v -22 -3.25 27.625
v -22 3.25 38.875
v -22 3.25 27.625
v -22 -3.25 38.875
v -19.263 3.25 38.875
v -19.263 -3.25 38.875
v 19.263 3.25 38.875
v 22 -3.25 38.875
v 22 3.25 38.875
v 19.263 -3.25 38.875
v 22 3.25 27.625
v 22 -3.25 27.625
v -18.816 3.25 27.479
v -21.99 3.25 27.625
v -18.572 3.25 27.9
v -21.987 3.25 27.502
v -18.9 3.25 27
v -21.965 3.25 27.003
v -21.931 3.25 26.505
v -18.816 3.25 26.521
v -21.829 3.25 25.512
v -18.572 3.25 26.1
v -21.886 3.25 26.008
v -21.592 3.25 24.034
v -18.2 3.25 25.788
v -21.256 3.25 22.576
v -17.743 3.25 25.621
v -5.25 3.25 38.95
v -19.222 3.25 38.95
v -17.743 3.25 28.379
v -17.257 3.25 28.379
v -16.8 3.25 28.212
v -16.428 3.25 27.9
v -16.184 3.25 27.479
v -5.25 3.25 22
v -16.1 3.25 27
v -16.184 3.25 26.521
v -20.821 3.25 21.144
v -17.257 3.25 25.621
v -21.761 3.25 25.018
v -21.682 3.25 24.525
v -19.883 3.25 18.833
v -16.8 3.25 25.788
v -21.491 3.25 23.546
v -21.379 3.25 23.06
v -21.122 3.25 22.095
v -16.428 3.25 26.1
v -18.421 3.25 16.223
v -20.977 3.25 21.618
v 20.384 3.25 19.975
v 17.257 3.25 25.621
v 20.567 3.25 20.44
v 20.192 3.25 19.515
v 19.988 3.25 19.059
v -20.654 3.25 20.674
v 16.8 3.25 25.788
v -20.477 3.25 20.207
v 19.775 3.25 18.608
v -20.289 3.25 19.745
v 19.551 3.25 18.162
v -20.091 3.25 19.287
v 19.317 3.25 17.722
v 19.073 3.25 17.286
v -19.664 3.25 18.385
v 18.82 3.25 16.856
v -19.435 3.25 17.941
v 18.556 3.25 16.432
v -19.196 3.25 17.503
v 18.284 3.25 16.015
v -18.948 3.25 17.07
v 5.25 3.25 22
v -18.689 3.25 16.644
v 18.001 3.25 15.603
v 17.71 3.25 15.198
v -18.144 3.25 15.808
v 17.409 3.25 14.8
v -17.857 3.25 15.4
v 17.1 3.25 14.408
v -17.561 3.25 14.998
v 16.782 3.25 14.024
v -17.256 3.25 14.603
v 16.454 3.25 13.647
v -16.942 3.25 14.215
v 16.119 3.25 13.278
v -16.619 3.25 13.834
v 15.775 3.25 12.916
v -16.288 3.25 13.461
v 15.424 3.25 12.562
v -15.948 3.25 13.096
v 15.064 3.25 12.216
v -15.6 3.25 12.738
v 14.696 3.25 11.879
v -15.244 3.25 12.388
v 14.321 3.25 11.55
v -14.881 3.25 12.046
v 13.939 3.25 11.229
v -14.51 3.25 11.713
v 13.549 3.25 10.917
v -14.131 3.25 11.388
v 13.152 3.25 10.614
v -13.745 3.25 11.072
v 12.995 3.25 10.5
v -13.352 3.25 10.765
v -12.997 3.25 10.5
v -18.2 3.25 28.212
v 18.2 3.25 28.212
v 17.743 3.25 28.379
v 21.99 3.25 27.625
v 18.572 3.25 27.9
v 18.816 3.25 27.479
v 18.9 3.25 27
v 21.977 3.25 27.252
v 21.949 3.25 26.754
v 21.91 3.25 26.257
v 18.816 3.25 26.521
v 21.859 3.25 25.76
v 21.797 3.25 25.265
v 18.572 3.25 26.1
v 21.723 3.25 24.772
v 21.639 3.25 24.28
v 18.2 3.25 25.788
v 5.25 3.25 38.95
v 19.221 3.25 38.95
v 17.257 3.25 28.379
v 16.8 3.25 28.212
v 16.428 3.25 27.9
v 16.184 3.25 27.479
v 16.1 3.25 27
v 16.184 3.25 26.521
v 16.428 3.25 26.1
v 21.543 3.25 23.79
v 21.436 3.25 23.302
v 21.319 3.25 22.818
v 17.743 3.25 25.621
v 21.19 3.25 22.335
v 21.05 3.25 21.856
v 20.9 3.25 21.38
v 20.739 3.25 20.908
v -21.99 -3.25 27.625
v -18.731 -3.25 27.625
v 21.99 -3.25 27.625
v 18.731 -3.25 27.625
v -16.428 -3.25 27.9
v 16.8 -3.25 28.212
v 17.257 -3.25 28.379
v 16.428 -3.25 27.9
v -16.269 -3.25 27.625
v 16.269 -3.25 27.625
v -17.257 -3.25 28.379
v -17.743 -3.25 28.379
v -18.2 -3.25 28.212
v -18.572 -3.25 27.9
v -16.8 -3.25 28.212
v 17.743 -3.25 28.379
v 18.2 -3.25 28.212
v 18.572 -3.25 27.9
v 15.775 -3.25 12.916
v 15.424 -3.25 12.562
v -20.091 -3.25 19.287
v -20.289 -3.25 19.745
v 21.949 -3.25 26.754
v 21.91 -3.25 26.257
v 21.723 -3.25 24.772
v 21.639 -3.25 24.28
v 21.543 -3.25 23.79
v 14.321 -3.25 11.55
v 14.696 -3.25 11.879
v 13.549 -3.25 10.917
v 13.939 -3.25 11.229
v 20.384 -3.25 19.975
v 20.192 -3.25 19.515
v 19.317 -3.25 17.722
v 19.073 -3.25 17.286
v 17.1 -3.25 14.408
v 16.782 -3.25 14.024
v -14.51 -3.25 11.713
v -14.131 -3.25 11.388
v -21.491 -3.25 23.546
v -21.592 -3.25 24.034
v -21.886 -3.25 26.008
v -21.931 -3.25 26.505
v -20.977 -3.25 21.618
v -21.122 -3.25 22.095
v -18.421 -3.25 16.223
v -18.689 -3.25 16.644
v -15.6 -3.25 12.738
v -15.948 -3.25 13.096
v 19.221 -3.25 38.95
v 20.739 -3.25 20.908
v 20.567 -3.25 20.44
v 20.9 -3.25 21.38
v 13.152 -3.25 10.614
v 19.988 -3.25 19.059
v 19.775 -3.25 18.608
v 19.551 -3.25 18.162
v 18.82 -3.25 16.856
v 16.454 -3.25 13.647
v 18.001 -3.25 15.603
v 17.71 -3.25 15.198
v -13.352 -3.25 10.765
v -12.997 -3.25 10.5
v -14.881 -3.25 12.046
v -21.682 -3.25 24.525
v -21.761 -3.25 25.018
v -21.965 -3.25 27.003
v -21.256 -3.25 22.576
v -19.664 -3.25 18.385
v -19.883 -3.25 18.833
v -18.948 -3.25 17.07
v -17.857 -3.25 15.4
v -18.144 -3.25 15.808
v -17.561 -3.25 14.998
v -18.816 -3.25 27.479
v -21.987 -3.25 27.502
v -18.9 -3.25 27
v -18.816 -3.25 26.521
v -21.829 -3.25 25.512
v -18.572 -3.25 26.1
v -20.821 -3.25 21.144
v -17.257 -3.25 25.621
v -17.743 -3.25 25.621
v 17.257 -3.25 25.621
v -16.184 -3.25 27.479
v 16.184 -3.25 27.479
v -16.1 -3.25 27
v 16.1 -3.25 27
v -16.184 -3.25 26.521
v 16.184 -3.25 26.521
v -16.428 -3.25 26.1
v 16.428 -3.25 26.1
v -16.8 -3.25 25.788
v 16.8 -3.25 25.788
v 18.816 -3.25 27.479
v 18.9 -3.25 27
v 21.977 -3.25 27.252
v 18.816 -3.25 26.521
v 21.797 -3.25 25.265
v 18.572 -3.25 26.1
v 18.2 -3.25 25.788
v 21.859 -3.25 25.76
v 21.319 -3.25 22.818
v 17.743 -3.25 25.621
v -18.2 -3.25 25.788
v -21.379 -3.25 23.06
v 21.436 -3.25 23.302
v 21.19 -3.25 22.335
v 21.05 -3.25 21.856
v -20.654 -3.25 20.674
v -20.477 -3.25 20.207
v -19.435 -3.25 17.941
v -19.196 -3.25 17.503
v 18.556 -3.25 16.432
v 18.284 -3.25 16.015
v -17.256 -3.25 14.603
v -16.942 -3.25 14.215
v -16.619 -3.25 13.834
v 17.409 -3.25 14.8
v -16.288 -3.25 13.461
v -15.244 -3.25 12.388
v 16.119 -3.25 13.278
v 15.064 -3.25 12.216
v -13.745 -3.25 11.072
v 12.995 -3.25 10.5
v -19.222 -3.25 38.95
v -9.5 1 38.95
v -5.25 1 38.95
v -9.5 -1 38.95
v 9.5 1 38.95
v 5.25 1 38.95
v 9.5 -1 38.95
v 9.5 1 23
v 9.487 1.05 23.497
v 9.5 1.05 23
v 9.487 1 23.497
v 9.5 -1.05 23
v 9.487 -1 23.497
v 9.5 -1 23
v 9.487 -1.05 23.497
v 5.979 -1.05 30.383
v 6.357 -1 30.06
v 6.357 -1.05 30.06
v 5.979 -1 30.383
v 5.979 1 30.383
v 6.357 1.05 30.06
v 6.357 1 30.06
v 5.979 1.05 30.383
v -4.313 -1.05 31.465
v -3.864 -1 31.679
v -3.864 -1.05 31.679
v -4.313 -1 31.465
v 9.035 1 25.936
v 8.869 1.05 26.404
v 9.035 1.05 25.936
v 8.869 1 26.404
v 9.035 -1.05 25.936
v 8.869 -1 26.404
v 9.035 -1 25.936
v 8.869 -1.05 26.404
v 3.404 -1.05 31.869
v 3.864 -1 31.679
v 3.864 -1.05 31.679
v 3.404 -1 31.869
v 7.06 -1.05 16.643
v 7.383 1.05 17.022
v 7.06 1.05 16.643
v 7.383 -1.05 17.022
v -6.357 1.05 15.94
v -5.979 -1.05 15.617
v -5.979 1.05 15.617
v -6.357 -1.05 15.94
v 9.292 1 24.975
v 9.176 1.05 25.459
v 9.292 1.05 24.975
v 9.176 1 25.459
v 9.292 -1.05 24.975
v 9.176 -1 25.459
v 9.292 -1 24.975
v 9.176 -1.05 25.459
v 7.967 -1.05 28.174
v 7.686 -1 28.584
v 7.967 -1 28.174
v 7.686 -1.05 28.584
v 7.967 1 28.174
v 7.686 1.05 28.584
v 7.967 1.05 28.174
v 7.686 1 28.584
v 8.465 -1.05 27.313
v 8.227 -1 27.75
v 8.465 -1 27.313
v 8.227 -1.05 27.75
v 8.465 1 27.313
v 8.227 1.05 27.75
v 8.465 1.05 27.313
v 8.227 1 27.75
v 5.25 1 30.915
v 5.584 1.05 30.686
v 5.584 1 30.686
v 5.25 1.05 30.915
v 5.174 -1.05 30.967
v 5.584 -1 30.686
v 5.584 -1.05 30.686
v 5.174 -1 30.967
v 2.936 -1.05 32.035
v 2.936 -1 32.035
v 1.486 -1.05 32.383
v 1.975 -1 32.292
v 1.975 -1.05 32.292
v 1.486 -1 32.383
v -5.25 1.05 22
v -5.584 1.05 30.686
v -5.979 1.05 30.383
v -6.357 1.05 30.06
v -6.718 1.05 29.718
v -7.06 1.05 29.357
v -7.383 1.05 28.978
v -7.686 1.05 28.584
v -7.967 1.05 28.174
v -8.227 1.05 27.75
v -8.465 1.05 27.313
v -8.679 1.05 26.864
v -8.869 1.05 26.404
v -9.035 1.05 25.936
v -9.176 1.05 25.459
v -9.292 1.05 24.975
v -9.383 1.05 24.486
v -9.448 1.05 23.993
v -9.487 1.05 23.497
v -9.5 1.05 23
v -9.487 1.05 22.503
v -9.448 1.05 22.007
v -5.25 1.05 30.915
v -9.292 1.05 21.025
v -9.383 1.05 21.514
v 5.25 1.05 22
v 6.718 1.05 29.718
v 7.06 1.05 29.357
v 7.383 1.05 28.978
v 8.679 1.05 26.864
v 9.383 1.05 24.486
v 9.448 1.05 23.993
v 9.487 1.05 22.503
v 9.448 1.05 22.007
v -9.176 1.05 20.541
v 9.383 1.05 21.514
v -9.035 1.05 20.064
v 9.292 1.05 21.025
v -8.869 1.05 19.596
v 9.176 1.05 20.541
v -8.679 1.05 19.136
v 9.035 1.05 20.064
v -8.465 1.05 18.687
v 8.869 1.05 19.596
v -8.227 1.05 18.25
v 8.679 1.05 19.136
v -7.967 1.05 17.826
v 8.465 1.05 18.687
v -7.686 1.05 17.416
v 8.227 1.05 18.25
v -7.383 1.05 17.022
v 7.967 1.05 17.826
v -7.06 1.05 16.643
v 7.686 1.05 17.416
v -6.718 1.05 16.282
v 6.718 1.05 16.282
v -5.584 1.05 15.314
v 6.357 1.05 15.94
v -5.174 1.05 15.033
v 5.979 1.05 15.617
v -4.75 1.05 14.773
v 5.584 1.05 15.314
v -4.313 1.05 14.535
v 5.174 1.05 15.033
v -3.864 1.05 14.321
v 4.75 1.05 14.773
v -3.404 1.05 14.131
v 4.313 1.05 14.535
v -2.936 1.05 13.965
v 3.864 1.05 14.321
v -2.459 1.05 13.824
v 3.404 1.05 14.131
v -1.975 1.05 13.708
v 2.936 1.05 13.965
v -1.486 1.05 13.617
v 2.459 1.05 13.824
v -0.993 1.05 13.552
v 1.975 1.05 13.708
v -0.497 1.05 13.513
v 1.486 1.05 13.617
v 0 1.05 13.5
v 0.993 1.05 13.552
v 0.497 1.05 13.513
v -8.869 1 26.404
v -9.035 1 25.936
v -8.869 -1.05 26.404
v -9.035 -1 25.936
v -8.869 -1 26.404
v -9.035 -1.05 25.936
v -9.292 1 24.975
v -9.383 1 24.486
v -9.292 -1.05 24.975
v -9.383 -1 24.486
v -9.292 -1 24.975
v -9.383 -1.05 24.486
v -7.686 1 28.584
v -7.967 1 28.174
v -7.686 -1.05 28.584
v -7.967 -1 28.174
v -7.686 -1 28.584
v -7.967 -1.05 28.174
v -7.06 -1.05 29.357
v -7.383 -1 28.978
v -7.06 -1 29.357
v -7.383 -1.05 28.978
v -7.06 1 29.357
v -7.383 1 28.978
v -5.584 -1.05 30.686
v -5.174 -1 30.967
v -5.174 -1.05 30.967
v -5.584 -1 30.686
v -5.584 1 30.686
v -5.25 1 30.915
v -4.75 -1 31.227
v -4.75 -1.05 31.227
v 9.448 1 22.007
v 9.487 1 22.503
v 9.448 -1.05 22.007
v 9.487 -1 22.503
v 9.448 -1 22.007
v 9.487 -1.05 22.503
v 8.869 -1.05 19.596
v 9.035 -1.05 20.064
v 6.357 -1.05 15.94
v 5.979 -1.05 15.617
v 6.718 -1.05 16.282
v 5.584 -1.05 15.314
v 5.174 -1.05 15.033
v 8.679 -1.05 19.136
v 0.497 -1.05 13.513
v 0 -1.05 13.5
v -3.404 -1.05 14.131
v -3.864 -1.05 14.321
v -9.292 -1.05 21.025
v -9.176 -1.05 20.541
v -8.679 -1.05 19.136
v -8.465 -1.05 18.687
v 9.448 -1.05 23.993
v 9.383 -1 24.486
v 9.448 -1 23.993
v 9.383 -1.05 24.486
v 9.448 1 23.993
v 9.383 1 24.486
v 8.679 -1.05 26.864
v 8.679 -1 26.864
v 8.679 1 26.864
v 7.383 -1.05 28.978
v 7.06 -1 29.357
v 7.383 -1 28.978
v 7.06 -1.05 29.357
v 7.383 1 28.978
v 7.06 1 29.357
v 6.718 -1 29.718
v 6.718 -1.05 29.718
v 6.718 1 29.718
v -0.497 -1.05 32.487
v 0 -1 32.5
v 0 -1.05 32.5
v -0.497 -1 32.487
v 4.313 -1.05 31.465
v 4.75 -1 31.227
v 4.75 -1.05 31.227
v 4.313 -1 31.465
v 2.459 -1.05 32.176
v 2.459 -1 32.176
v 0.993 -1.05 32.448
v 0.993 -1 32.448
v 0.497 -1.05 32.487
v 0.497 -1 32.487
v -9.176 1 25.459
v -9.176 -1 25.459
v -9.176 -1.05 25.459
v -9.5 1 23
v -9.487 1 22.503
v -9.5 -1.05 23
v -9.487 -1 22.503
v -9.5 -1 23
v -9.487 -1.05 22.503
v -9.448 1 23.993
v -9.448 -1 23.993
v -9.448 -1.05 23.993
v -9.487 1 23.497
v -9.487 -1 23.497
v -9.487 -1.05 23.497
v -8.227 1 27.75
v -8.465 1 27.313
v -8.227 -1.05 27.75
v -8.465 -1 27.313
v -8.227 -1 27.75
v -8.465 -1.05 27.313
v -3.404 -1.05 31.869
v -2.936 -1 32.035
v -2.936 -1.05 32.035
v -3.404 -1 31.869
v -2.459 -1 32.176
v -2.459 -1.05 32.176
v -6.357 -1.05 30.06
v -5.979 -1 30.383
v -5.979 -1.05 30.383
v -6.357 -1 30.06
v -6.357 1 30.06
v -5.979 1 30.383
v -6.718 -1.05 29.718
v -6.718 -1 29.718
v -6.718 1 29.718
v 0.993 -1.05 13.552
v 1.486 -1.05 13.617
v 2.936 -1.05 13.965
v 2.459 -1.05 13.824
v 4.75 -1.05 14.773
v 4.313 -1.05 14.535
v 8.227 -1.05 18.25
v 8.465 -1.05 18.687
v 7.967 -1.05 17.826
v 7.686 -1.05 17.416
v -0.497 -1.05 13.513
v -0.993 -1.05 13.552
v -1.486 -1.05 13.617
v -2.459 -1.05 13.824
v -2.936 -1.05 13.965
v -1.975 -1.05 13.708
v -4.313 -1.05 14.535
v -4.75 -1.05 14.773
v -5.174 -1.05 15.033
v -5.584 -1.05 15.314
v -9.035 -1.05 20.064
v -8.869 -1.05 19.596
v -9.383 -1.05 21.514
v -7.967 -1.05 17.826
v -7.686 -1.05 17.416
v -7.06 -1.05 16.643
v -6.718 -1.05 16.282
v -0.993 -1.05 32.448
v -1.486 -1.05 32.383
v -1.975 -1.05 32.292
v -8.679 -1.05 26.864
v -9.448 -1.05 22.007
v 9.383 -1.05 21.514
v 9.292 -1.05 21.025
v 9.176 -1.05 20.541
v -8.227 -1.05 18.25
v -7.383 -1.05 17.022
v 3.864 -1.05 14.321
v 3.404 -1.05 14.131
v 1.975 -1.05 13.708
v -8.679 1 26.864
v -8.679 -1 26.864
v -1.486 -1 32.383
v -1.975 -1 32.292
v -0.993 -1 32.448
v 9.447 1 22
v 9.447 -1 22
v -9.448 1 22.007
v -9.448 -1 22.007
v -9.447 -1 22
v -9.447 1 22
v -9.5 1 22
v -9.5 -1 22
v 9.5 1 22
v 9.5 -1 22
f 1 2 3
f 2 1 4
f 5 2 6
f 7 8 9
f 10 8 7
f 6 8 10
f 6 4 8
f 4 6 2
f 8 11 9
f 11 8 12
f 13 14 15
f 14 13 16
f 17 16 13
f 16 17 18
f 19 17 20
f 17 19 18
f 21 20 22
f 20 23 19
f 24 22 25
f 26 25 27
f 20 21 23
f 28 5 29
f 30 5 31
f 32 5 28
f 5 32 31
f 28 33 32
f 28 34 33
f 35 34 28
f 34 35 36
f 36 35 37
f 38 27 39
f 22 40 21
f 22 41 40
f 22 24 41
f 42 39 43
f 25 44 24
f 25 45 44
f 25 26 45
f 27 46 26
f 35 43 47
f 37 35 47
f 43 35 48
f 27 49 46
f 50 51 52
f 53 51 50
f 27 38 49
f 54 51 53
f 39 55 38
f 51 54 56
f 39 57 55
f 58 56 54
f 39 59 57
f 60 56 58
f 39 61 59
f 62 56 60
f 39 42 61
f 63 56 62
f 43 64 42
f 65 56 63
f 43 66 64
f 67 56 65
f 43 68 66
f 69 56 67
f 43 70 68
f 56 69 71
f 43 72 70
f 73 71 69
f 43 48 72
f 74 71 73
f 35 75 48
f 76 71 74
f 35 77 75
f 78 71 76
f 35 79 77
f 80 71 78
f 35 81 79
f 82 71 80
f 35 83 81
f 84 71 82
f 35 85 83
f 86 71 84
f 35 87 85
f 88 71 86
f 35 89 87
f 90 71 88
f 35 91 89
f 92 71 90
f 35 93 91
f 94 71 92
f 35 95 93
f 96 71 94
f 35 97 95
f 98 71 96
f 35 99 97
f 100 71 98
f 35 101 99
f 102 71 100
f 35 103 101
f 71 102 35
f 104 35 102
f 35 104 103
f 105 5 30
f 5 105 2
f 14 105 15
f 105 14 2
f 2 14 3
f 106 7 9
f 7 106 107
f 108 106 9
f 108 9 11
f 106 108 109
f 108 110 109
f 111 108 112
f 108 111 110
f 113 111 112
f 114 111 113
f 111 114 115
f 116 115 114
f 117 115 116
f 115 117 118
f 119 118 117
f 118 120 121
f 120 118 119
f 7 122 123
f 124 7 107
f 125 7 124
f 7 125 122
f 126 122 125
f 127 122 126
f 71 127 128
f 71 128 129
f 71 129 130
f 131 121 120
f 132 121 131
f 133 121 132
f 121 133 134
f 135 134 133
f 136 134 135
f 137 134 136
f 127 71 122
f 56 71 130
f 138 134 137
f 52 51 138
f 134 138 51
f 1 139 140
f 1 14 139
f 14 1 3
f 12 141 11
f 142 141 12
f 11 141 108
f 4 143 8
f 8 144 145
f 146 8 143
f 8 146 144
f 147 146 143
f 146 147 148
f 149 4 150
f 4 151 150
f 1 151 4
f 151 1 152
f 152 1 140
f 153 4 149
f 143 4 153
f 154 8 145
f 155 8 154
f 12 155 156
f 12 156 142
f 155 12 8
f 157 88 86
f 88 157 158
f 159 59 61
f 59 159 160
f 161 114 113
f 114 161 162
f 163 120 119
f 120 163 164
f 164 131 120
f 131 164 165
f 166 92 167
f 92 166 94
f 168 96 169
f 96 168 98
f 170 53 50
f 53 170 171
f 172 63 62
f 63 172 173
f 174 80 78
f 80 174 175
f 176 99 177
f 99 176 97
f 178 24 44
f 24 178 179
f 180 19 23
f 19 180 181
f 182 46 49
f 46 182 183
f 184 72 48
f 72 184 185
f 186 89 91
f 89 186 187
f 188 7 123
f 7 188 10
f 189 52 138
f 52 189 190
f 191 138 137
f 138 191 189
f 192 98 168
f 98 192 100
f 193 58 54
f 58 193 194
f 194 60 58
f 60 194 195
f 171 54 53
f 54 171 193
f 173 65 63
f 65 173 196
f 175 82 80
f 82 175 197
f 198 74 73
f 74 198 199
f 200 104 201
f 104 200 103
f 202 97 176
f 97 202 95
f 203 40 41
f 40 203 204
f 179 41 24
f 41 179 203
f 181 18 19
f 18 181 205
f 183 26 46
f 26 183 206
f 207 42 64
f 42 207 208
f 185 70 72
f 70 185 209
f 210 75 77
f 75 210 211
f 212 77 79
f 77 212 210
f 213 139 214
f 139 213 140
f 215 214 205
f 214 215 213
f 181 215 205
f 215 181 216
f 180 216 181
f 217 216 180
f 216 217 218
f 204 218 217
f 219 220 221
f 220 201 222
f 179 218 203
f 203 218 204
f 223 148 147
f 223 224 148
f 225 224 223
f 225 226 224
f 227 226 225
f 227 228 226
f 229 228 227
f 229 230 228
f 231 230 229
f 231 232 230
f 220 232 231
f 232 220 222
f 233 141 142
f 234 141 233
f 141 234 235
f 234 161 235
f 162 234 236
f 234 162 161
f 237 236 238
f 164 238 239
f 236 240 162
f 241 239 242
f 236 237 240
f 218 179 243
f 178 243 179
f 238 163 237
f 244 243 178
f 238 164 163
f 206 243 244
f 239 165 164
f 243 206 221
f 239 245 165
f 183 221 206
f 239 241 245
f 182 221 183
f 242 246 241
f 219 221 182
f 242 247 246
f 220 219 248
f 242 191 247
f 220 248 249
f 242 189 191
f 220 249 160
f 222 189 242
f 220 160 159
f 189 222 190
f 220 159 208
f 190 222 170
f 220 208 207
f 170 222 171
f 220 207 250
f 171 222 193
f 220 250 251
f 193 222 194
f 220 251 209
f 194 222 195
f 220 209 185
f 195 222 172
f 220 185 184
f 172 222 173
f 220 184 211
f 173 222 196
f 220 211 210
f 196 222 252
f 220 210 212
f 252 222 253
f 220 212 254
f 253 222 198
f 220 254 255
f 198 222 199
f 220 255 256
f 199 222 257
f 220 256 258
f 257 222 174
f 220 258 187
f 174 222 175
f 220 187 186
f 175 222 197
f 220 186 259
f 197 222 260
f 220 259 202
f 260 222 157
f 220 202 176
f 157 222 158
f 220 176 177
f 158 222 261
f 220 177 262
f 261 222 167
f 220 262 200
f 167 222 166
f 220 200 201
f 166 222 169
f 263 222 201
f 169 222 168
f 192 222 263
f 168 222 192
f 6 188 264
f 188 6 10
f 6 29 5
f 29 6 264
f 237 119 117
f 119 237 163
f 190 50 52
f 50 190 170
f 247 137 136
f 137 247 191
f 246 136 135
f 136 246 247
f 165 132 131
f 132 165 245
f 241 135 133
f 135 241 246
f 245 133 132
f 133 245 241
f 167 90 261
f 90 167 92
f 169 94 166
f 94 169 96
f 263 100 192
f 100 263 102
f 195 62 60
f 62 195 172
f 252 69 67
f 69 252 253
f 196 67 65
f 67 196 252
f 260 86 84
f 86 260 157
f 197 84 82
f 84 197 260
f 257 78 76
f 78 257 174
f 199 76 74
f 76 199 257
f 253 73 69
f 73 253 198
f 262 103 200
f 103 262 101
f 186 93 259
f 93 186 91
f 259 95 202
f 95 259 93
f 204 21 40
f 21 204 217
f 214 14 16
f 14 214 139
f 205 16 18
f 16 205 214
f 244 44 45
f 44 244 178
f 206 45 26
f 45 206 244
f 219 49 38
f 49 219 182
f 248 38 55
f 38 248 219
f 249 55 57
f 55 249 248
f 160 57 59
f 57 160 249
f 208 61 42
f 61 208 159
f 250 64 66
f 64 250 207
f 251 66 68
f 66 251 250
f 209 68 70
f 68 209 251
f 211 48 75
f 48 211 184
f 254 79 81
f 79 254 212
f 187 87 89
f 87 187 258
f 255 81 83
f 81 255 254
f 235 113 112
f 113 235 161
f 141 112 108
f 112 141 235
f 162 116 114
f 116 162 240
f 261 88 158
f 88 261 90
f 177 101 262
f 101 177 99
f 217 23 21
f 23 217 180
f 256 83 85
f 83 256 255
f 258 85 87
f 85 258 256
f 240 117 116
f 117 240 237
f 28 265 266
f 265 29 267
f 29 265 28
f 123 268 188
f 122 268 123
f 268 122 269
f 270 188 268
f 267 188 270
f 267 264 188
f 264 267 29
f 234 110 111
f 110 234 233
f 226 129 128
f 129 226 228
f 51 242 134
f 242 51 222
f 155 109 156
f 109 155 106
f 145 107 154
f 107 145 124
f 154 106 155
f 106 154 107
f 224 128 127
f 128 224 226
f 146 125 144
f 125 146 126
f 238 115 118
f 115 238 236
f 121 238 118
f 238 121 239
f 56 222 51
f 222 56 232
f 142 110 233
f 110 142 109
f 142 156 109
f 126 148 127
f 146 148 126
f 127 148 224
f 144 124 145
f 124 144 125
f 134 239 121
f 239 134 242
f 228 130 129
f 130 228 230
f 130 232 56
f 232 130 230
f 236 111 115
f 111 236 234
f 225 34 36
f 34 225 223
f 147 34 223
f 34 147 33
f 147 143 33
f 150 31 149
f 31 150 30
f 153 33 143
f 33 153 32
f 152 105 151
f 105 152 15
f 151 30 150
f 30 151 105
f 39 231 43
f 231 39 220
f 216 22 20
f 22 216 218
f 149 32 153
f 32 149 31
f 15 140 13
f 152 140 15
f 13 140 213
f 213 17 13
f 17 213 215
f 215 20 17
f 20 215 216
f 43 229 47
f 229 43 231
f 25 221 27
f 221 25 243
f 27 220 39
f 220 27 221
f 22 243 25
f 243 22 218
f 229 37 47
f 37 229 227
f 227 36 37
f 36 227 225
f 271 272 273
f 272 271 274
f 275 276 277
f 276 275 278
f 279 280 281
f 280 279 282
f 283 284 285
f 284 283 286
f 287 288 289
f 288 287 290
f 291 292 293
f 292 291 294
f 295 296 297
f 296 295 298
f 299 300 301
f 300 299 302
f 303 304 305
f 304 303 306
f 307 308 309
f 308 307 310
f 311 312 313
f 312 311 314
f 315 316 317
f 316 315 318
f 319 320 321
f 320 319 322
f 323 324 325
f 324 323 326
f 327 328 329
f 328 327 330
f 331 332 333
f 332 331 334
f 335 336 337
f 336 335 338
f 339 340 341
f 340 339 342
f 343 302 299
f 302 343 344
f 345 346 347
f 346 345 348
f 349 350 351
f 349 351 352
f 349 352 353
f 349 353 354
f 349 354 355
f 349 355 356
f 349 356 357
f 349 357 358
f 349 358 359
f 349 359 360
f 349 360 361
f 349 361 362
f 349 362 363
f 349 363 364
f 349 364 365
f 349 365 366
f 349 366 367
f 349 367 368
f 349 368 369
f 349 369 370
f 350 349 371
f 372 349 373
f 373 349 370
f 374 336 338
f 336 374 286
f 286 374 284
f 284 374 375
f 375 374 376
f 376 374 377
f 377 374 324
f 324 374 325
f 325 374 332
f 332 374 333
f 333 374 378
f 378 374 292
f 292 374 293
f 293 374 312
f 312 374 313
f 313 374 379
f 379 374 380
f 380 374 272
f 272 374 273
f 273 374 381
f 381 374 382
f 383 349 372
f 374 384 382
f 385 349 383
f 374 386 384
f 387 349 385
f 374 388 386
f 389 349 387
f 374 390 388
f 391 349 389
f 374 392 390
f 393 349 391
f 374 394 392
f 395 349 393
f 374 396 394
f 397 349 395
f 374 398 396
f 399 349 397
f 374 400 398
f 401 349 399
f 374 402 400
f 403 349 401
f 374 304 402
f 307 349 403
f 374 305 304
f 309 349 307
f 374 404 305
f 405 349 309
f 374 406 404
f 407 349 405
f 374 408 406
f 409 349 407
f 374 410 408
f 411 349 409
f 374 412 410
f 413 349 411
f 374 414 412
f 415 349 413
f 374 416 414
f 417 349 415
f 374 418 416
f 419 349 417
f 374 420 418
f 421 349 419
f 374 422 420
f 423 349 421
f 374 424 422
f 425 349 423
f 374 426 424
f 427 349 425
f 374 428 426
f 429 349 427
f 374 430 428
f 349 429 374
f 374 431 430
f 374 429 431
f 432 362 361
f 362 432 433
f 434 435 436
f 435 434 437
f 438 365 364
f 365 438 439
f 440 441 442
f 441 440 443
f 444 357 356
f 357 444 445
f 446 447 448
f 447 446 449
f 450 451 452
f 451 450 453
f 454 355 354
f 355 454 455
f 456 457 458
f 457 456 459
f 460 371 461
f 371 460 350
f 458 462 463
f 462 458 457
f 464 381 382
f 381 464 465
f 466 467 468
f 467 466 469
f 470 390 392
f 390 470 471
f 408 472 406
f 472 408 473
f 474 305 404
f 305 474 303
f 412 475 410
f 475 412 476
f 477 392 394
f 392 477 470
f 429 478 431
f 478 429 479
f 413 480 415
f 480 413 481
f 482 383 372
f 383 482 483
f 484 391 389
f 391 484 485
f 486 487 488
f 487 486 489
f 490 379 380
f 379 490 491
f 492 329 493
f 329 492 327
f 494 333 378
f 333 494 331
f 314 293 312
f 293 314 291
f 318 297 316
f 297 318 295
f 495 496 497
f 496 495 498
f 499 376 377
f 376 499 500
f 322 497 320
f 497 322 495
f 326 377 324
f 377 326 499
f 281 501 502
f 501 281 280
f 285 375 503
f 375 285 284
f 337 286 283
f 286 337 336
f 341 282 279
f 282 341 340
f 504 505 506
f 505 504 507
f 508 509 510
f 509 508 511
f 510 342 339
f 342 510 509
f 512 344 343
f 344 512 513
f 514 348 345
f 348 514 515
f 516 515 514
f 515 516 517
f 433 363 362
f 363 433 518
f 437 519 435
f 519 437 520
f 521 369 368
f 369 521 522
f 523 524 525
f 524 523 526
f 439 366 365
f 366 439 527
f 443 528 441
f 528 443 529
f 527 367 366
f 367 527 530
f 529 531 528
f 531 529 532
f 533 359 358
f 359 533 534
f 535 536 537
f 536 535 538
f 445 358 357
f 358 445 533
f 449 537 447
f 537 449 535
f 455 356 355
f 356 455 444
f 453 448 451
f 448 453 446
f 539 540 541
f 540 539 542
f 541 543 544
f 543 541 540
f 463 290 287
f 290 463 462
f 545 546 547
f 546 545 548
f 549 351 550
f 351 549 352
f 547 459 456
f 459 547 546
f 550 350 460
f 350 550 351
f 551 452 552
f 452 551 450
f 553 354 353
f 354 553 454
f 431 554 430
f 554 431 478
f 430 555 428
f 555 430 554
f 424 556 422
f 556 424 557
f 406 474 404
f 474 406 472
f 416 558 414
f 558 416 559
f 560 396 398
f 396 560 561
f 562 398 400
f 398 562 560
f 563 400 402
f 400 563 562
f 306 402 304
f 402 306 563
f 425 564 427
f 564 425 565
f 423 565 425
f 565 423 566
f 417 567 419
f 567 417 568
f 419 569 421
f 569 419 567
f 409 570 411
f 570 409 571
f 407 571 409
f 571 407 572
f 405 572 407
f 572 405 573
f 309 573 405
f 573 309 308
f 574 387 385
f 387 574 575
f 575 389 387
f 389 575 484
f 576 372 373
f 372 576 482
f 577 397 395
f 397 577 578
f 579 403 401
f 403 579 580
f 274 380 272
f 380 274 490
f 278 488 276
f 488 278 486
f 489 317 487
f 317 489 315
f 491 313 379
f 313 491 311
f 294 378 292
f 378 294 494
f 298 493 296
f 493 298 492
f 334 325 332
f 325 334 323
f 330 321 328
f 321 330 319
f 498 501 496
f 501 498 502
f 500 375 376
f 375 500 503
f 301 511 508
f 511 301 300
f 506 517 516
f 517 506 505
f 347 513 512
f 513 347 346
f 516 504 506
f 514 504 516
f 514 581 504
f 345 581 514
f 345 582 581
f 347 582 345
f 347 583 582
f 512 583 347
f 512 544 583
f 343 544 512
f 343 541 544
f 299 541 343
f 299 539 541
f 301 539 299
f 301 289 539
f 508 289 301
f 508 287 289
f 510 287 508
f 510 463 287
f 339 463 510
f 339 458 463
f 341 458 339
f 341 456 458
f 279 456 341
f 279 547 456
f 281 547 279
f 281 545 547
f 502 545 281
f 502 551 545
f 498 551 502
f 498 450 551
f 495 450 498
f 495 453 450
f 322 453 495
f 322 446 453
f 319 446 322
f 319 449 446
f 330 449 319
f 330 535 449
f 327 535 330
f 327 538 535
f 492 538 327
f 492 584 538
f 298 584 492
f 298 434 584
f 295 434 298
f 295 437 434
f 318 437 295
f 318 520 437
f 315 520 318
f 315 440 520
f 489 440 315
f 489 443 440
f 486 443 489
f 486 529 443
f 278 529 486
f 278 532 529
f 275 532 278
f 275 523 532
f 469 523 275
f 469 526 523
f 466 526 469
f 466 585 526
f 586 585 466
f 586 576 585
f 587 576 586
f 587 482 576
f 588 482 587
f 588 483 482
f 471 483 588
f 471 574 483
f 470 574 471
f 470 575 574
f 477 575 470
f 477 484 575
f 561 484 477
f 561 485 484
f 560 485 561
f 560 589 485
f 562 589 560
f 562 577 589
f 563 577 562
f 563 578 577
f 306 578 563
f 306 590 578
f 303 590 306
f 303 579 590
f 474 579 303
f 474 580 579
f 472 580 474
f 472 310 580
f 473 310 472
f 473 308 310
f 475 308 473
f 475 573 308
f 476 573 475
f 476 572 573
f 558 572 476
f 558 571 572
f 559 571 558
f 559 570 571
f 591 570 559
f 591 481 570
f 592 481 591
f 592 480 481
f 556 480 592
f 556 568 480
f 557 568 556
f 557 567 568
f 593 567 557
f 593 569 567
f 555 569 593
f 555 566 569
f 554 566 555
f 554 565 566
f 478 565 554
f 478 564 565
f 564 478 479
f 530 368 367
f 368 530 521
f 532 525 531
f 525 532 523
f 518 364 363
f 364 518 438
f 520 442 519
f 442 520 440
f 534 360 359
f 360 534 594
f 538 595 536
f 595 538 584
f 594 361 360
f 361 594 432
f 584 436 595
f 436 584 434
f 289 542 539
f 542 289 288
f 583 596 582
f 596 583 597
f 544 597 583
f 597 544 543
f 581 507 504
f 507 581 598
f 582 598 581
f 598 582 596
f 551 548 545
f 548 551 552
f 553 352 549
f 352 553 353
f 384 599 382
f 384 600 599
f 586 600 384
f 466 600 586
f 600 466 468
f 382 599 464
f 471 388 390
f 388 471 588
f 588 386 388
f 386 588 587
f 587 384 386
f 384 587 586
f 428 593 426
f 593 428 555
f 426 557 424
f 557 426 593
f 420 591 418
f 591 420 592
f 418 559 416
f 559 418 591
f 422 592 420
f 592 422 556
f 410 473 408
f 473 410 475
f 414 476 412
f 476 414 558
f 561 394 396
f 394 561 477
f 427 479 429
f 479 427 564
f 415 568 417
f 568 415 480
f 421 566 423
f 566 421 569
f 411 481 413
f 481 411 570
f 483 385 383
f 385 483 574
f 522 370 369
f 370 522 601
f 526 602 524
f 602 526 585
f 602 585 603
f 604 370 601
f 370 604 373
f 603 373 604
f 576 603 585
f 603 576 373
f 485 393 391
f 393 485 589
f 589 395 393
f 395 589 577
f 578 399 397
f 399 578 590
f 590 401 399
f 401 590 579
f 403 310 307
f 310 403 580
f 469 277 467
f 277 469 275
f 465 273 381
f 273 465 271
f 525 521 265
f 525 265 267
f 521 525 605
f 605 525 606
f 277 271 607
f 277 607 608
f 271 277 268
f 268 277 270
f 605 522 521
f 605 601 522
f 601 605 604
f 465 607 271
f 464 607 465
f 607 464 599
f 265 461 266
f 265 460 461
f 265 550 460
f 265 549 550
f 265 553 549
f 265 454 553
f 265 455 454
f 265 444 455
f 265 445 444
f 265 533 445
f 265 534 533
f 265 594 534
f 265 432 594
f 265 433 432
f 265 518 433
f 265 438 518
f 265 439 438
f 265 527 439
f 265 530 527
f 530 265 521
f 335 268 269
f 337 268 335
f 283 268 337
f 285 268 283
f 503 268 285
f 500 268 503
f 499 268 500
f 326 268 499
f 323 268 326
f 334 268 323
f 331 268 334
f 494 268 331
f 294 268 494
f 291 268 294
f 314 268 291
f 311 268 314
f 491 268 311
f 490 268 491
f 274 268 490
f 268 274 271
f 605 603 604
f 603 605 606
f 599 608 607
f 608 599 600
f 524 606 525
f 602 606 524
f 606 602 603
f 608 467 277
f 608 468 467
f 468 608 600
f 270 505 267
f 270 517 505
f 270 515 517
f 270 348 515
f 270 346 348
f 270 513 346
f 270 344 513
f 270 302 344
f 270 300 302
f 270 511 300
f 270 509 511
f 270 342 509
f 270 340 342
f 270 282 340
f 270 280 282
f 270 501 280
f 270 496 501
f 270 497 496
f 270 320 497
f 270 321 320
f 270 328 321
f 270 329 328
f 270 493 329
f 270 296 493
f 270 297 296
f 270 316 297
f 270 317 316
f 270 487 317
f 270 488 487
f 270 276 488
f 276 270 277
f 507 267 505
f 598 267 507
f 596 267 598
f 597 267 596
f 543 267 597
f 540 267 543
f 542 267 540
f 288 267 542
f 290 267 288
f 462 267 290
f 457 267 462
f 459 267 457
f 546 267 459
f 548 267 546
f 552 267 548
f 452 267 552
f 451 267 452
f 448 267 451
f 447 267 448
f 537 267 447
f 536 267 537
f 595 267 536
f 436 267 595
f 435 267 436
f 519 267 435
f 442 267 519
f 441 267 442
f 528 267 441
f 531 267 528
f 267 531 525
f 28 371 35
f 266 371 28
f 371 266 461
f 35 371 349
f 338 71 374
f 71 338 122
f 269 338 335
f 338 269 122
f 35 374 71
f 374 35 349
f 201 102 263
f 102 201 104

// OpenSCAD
$fa=0.5; // default minimum facet angle is now 0.5
$fs=0.5; // default minimum facet size is now 0.5 mm

difference() {
    union() {
        //body
        translate([0, 0, 11.25+22])
        cube([44 ,6.5, 11.25], center = true);
        
        rotate([90, 0, 0])
        translate([0, 10.25+18, 0])
        cylinder(h = 6.5, r = 22, center = true);
    }
    
    //remove top part of circle
    translate([0, 0, 15/2+37+2])
    cube([44+.01 ,6.5+.01, 15+0.1], center = true);
    
    //holes in top piece for screws
    rotate([90, 0, 0])
    translate([17.5, 27, 0]) 
    cylinder(h = 6.5+0.1, r = 1.4, center = true);
    
    rotate([90, 0, 0])
    translate([-17.5, 27, 0]) 
    cylinder(h = 6.5+0.1, r = 1.4, center = true);
    
    //remove inner U
    rotate([90, 0, 0])
    translate([0, 5+18, 0])
    cylinder(h = 2+0.1, r = 9.5, center = true);
    
    //center slot
    translate([0, 0, 14+18])
    cube([19, 2, 20], center = true);
    
    //slot from face
    translate([0, 2, 14+18])
    cube([10.5, 3, 20], center = true);
    
    //remove bottom circle
    rotate([90, 0, 0])
    translate([0, 5, 0])
    cylinder(h = 6.5+0.1, r = 5.5, center = true);
    
    //slice bottom off
    translate([0, 0, 8])
    cube([50, 8, 5], center = true);
}
